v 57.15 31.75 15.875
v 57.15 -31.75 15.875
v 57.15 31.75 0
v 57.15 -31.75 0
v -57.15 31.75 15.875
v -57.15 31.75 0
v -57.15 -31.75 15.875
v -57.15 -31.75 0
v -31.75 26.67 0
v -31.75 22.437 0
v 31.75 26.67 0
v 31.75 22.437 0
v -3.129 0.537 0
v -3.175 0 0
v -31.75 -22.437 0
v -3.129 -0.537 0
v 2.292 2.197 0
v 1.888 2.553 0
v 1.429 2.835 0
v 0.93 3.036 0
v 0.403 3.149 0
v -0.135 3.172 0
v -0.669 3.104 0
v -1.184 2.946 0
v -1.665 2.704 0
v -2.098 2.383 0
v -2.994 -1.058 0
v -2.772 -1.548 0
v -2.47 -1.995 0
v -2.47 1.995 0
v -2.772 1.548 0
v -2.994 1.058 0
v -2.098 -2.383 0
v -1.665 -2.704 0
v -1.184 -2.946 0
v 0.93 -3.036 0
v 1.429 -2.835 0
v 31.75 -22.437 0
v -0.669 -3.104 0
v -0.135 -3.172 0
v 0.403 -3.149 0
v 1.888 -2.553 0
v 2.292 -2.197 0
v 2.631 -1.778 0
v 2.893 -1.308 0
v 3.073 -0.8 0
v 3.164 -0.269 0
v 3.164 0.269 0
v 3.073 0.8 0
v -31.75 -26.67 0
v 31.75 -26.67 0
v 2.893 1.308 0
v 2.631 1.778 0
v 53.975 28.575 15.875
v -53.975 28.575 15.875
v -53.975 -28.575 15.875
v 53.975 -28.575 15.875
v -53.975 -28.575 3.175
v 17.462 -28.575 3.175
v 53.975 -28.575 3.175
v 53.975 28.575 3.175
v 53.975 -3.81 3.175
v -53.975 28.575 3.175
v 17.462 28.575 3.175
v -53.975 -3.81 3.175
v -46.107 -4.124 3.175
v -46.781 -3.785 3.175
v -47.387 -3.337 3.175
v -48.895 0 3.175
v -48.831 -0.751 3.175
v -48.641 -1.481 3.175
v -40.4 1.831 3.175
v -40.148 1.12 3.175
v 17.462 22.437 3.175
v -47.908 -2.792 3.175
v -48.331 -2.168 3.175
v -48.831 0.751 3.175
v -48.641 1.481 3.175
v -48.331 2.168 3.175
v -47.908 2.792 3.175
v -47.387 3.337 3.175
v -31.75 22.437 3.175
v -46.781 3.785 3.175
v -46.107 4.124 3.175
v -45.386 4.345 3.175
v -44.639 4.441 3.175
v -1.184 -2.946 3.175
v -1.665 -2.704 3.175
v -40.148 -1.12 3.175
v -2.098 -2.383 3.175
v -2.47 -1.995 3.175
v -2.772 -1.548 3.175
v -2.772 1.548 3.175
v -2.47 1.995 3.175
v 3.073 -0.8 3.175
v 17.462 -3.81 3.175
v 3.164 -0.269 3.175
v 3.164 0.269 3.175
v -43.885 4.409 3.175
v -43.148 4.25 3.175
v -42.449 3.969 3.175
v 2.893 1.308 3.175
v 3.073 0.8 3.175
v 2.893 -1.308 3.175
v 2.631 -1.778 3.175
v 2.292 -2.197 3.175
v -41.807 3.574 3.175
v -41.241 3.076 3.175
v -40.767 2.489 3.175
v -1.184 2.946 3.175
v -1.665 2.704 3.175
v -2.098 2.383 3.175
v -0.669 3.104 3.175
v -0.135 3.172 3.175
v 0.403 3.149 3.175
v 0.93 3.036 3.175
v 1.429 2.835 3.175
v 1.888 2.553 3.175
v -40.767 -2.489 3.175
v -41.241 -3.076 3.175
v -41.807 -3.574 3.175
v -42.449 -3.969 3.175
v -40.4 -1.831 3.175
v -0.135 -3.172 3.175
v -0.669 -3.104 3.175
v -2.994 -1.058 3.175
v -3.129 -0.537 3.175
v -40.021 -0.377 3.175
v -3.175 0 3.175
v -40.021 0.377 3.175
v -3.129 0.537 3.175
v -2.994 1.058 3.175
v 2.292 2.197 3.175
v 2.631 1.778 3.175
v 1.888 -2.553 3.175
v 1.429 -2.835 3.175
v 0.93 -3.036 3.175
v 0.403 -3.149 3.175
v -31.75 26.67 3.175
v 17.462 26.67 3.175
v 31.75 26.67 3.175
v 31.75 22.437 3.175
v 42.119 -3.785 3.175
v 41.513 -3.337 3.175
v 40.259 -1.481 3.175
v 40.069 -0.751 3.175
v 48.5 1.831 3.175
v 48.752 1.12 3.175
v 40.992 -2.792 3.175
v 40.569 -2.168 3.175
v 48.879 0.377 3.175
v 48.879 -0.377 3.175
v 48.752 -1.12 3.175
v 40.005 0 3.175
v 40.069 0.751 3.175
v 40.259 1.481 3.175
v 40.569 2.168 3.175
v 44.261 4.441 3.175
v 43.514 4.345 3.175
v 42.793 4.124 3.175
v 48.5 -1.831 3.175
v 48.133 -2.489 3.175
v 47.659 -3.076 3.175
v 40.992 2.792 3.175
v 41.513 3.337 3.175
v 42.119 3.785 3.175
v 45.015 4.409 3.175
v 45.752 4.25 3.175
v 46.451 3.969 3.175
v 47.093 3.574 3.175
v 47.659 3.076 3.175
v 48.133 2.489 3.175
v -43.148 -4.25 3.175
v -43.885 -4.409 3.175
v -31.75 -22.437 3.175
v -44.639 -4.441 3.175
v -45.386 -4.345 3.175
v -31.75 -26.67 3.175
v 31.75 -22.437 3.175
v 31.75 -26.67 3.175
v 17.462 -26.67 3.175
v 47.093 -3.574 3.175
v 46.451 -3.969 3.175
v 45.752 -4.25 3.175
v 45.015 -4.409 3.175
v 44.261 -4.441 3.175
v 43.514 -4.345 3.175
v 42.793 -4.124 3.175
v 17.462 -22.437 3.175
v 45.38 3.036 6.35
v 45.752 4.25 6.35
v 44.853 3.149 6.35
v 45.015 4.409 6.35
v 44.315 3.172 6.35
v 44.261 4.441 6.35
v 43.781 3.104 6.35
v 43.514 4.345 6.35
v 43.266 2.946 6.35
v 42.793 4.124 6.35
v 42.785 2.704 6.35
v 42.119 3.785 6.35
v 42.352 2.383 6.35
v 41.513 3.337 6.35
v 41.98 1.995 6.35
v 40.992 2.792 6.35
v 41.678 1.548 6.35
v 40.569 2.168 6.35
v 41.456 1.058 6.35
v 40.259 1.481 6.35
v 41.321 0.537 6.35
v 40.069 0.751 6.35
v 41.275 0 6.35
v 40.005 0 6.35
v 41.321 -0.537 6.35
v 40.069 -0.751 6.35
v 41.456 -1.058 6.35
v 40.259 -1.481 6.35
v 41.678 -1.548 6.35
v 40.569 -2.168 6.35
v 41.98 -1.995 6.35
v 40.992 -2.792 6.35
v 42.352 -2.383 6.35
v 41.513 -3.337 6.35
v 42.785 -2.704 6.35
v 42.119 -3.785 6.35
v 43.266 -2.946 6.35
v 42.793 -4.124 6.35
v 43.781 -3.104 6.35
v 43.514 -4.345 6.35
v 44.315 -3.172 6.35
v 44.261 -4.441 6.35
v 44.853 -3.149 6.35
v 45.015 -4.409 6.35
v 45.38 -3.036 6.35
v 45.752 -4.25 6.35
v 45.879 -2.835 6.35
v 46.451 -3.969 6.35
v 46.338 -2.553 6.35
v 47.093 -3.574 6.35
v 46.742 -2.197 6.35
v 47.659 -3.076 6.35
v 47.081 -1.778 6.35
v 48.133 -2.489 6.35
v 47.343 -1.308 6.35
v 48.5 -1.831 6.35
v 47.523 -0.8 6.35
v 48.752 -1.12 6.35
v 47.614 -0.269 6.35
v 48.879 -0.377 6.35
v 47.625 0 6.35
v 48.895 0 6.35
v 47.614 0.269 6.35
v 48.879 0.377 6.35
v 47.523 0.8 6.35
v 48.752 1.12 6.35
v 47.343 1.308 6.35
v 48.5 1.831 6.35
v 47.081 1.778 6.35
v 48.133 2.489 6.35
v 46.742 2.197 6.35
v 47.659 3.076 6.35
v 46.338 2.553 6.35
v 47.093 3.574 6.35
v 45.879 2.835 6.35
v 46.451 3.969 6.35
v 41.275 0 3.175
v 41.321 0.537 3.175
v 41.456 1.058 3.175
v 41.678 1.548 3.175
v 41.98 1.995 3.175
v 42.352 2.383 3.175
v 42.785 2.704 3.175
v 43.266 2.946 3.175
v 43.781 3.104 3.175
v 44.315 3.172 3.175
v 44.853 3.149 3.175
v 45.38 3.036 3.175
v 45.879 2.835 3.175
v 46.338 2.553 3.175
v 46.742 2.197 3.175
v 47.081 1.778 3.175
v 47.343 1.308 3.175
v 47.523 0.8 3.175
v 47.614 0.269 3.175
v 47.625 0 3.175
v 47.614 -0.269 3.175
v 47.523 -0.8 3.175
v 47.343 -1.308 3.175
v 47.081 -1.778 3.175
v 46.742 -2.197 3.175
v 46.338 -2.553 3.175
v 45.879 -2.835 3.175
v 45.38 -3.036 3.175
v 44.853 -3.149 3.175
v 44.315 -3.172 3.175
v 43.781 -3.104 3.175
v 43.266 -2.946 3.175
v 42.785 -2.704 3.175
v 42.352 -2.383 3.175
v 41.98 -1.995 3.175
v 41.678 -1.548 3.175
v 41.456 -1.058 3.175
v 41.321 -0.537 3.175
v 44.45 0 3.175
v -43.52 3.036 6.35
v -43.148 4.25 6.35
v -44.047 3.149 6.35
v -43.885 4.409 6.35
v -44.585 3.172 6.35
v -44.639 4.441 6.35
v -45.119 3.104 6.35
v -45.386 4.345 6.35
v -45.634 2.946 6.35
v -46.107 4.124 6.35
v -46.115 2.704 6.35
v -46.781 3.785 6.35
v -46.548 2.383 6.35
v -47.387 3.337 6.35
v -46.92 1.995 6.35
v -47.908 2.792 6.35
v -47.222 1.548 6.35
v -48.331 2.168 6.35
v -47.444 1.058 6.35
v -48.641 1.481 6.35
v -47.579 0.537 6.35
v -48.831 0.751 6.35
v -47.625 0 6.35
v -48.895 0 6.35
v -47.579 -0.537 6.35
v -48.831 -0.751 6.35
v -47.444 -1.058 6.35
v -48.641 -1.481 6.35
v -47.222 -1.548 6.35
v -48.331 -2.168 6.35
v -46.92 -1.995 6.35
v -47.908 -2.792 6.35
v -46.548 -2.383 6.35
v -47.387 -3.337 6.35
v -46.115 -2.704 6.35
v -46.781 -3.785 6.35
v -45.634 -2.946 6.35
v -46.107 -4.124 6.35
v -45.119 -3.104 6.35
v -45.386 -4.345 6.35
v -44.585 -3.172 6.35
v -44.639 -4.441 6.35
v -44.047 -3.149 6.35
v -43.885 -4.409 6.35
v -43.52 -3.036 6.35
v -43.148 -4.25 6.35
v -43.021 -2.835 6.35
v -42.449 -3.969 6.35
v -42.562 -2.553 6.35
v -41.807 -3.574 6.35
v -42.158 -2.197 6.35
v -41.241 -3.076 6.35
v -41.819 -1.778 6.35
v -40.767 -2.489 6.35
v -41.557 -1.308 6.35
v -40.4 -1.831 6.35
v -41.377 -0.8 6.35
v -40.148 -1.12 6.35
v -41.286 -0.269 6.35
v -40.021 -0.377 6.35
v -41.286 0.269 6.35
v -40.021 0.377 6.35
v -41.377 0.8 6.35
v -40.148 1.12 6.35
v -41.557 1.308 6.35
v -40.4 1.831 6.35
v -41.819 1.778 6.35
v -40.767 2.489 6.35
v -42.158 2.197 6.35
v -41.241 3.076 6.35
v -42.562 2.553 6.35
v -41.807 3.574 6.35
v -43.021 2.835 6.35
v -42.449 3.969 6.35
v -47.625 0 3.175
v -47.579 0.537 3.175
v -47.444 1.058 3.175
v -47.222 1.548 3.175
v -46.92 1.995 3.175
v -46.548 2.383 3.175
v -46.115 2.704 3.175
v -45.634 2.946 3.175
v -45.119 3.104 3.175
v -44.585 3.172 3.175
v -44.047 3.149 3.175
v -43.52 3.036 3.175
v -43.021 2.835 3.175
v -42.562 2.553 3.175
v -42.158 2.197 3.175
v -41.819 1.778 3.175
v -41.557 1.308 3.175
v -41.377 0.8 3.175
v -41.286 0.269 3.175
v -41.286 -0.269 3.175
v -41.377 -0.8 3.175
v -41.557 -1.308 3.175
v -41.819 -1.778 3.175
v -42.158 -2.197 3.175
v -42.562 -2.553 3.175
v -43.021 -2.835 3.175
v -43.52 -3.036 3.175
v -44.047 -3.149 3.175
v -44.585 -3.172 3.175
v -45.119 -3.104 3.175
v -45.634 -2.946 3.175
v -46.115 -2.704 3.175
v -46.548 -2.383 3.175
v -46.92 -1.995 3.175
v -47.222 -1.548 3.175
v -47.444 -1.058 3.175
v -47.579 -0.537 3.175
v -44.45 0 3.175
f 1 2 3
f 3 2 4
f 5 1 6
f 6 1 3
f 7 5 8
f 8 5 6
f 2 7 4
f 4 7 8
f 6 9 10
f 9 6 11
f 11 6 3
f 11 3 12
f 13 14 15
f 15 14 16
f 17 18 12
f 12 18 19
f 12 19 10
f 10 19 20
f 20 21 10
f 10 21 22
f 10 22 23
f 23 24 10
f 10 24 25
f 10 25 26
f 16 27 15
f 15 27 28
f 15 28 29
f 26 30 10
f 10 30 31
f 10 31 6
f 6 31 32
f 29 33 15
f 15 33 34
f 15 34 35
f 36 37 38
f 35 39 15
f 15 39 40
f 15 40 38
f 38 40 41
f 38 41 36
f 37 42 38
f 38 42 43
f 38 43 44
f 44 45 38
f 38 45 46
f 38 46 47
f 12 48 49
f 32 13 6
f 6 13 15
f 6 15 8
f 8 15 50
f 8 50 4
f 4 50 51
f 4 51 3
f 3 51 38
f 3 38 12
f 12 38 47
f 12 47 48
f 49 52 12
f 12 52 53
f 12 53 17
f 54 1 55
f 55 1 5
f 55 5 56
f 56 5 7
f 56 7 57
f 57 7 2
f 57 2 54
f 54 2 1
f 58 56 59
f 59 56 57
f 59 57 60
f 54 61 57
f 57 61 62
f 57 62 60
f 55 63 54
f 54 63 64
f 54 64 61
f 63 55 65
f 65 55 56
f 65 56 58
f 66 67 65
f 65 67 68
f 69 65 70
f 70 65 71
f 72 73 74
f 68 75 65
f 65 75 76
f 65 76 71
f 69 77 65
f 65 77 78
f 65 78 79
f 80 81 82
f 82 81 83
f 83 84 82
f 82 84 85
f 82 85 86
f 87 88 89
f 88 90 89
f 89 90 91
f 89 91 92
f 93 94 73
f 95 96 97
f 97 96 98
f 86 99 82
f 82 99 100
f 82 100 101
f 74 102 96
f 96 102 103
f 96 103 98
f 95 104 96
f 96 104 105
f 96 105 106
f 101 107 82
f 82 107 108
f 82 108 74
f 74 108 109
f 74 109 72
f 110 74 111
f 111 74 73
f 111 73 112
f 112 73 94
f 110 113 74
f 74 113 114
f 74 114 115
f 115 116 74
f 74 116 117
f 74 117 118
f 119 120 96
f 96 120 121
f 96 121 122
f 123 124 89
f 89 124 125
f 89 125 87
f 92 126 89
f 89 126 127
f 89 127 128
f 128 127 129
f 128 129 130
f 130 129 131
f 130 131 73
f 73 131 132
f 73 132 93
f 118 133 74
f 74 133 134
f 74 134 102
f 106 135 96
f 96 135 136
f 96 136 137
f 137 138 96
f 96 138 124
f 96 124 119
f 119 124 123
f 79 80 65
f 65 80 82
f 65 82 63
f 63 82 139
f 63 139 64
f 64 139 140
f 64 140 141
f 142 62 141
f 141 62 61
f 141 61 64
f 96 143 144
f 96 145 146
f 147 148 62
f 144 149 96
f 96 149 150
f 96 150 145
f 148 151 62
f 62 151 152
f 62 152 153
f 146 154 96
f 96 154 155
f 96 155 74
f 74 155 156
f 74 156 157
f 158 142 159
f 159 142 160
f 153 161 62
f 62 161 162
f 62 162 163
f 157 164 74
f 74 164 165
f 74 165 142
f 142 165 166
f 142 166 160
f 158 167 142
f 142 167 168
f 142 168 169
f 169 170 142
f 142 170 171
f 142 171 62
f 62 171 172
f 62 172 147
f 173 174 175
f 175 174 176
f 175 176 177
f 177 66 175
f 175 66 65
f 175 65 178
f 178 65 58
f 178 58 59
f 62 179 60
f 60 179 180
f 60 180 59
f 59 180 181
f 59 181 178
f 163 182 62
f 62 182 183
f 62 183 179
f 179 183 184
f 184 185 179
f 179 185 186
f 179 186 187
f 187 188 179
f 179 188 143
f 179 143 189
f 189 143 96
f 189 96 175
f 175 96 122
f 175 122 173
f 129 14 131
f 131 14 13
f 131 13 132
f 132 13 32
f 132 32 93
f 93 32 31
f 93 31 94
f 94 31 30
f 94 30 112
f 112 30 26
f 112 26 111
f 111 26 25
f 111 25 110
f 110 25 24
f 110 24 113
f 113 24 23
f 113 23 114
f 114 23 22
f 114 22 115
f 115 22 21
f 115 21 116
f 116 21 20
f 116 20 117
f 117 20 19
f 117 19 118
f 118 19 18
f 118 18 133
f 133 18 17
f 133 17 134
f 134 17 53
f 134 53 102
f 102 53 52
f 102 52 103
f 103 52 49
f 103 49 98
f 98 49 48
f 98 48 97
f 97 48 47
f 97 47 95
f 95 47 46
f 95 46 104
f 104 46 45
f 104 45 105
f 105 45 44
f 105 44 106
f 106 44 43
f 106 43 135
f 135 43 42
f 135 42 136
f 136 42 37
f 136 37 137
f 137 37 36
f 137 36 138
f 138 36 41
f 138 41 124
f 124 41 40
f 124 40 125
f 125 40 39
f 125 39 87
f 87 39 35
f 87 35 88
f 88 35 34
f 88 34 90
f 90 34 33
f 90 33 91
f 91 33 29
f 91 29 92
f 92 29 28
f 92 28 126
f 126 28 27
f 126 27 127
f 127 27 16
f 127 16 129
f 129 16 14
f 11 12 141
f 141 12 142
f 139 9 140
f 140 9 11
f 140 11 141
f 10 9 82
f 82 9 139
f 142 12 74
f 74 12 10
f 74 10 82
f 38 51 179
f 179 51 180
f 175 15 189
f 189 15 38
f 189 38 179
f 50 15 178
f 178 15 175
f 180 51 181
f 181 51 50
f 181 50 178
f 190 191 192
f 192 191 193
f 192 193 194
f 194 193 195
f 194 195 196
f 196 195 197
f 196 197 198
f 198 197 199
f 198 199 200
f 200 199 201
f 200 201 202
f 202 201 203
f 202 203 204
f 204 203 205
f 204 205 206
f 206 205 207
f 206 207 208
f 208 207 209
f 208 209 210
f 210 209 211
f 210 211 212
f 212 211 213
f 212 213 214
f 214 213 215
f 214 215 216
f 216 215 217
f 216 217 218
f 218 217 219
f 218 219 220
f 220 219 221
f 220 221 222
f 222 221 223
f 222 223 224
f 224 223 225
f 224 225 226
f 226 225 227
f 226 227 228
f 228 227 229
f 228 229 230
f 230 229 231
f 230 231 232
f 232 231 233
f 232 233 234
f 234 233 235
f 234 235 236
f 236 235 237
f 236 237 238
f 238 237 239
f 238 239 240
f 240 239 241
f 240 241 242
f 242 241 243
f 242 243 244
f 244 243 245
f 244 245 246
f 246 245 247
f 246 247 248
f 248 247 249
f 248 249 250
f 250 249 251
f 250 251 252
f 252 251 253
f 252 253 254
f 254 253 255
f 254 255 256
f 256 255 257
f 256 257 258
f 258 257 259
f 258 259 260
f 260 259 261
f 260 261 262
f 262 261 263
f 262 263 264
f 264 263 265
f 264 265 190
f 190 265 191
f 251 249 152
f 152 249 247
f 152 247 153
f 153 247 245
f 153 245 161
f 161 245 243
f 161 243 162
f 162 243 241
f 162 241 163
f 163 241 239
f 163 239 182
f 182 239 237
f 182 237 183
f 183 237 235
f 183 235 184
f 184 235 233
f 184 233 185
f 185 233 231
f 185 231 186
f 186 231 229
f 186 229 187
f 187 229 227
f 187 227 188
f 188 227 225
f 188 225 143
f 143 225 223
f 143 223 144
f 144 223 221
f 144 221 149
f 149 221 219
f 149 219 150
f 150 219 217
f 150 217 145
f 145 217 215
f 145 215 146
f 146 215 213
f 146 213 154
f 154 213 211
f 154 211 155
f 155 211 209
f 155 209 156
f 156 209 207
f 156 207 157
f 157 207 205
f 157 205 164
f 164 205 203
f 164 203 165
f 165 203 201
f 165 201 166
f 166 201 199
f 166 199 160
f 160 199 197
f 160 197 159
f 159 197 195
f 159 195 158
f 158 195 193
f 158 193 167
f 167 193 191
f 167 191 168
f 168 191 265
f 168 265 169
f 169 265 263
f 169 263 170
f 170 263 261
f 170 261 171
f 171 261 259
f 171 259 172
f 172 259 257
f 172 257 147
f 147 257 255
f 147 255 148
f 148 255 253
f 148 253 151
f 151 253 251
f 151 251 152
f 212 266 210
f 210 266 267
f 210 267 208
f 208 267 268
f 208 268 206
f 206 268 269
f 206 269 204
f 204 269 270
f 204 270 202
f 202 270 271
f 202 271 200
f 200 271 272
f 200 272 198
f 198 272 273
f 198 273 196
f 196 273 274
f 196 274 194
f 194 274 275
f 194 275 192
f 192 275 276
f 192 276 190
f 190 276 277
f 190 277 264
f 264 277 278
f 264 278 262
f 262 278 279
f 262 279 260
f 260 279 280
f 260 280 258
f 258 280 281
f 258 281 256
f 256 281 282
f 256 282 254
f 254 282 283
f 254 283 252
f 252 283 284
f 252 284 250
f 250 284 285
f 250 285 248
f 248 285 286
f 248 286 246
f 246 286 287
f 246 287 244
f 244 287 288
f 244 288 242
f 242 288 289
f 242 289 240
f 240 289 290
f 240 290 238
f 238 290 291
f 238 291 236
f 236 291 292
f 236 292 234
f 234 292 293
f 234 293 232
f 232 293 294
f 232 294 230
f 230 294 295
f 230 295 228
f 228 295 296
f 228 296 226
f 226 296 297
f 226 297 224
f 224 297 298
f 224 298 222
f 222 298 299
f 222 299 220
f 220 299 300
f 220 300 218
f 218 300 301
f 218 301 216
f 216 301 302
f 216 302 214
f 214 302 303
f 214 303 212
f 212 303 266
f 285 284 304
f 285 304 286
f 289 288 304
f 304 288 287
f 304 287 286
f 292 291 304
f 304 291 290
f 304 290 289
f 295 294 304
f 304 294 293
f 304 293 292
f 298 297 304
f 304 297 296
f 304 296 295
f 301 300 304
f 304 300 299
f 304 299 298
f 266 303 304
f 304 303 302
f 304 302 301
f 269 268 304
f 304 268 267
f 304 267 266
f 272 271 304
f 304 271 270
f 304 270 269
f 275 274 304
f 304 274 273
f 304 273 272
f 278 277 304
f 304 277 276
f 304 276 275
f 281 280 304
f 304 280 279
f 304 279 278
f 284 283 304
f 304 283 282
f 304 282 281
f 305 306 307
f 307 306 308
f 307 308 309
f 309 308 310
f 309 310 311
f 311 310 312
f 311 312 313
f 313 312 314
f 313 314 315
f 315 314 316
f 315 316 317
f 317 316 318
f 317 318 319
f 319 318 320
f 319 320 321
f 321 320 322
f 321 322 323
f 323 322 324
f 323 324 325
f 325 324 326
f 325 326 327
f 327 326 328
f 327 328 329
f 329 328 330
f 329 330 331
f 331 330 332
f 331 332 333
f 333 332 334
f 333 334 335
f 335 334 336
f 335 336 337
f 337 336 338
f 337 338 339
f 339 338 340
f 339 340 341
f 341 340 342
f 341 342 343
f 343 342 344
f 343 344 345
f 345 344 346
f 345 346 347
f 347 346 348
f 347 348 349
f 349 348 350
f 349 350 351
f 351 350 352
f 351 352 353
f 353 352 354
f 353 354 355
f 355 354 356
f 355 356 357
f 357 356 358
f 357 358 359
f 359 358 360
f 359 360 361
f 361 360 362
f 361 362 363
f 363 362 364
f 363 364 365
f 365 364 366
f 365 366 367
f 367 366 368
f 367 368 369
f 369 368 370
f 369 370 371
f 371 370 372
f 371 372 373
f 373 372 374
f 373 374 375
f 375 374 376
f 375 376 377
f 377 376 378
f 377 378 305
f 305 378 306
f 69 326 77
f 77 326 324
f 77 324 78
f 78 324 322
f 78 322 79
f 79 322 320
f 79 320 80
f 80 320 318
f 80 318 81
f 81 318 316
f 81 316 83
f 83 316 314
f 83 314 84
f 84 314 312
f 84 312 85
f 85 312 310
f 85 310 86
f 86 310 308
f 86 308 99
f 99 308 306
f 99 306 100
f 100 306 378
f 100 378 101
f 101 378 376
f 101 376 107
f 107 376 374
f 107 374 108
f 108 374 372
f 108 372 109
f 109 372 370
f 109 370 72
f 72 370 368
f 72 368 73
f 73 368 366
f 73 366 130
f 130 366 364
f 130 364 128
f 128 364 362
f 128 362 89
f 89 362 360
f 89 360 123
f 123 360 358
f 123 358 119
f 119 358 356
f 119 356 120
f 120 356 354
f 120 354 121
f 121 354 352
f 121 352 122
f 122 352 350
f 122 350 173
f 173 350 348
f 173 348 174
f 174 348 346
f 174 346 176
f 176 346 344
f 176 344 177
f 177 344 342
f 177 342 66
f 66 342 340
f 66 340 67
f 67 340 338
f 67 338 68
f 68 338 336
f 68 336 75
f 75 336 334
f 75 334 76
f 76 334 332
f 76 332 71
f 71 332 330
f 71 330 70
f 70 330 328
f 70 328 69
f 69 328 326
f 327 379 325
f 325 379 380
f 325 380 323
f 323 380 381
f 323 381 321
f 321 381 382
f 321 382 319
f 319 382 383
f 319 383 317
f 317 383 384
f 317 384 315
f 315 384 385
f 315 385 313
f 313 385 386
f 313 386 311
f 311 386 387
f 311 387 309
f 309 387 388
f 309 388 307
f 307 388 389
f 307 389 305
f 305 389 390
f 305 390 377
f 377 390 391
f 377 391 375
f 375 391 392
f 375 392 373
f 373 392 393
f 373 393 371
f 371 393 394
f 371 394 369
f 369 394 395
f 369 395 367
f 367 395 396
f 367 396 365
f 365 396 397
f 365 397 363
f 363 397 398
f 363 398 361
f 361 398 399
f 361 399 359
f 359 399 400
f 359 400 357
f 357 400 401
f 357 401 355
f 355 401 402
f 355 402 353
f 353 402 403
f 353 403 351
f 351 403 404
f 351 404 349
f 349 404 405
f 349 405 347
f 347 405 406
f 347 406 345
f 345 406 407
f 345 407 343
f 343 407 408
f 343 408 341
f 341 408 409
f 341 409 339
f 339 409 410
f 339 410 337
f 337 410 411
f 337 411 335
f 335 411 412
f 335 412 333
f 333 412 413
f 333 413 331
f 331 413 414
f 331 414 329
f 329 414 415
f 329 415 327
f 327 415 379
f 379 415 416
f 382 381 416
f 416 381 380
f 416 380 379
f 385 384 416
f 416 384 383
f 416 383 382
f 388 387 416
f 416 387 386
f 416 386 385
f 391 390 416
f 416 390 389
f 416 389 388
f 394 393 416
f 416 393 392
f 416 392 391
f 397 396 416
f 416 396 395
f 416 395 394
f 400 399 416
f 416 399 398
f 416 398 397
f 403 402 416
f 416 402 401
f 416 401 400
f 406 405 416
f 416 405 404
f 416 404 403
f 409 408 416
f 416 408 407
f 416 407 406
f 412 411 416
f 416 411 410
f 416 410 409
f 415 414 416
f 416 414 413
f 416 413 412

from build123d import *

# Parameters (mm, degrees)
SKETCH1_W           = 114.3
SKETCH1_H           = 63.5
BOSS_EXTRUDE1_DEPTH = 3.175
SKETCH2_W           = 114.3
SKETCH2_H           = 63.5
SKETCH2_W_2         = 107.95
SKETCH2_H_2         = 57.15
BOSS_EXTRUDE2_DEPTH = 12.7
CUT_EXTRUDE1_REACH  = 69.277
SKETCH3_R           = 3.175
SKETCH3_W           = 63.5
SKETCH3_H           = 4.233333418
SKETCH4_R           = 4.445
SKETCH4_R_2         = 3.175
BOSS_EXTRUDE3_DEPTH = 3.175


with BuildPart() as part:
    # Sketch1 → Boss-Extrude1 (new body)
    with BuildSketch(Plane.XY):
        Rectangle(SKETCH1_W, SKETCH1_H)
    extrude(amount=BOSS_EXTRUDE1_DEPTH)

    # Sketch2 → Boss-Extrude2 (add)
    with BuildSketch(Plane.XY.offset(3.175)):
        Rectangle(SKETCH2_W, SKETCH2_H)
        Rectangle(SKETCH2_W_2, SKETCH2_H_2, mode=Mode.SUBTRACT)
    extrude(amount=BOSS_EXTRUDE2_DEPTH)

    # Sketch3 → Cut-Extrude1 (cut, up to next)
    with BuildSketch(Plane(origin=(0, 0, 0), x_dir=(-1, 0, 0), z_dir=(0, 0, -1)), mode=Mode.PRIVATE) as cut_extrude1_sk1:
        Circle(SKETCH3_R)
    cut_extrude1_tool1 = extrude(cut_extrude1_sk1.sketch, amount=-CUT_EXTRUDE1_REACH, mode=Mode.PRIVATE) & part.part
    # Sketch3 → Cut-Extrude1 (cut, up to next)
    with BuildSketch(Plane(origin=(0, 0, 0), x_dir=(-1, 0, 0), z_dir=(0, 0, -1)), mode=Mode.PRIVATE) as cut_extrude1_sk2:
        with Locations((0, 24.553333291)):
            Rectangle(SKETCH3_W, SKETCH3_H)
    cut_extrude1_tool2 = extrude(cut_extrude1_sk2.sketch, amount=-CUT_EXTRUDE1_REACH, mode=Mode.PRIVATE) & part.part
    # Sketch3 → Cut-Extrude1 (cut, up to next)
    with BuildSketch(Plane(origin=(0, 0, 0), x_dir=(-1, 0, 0), z_dir=(0, 0, -1)), mode=Mode.PRIVATE) as cut_extrude1_sk3:
        with Locations((0, -24.553333291)):
            Rectangle(SKETCH3_W, SKETCH3_H)
    cut_extrude1_tool3 = extrude(cut_extrude1_sk3.sketch, amount=-CUT_EXTRUDE1_REACH, mode=Mode.PRIVATE) & part.part
    add(cut_extrude1_tool1.solids().sort_by_distance((0, 0, 0))[0], mode=Mode.SUBTRACT)
    add(cut_extrude1_tool2.solids().sort_by_distance((0, 24.553333, 0))[0], mode=Mode.SUBTRACT)
    add(cut_extrude1_tool3.solids().sort_by_distance((0, -24.553333, 0))[0], mode=Mode.SUBTRACT)

    # Sketch4 → Boss-Extrude3 (add)
    # profile 1 of 2: a face of its own
    with BuildSketch(Plane.XY.offset(3.175)):
        with Locations(Location((44.45, 0, 0), (0, 0, 180))):
            Circle(SKETCH4_R)
        with Locations((44.45, 0)):
            Circle(SKETCH4_R_2, mode=Mode.SUBTRACT)
    # profile 2 of 2: a face of its own
    with BuildSketch(Plane.XY.offset(3.175)):
        with Locations(Location((-44.45, 0, 0), (0, 0, 180))):
            Circle(SKETCH4_R)
        with Locations(Location((-44.45, 0, 0), (0, 0, 180))):
            Circle(SKETCH4_R_2, mode=Mode.SUBTRACT)
    extrude(amount=BOSS_EXTRUDE3_DEPTH)


solid = part.part
